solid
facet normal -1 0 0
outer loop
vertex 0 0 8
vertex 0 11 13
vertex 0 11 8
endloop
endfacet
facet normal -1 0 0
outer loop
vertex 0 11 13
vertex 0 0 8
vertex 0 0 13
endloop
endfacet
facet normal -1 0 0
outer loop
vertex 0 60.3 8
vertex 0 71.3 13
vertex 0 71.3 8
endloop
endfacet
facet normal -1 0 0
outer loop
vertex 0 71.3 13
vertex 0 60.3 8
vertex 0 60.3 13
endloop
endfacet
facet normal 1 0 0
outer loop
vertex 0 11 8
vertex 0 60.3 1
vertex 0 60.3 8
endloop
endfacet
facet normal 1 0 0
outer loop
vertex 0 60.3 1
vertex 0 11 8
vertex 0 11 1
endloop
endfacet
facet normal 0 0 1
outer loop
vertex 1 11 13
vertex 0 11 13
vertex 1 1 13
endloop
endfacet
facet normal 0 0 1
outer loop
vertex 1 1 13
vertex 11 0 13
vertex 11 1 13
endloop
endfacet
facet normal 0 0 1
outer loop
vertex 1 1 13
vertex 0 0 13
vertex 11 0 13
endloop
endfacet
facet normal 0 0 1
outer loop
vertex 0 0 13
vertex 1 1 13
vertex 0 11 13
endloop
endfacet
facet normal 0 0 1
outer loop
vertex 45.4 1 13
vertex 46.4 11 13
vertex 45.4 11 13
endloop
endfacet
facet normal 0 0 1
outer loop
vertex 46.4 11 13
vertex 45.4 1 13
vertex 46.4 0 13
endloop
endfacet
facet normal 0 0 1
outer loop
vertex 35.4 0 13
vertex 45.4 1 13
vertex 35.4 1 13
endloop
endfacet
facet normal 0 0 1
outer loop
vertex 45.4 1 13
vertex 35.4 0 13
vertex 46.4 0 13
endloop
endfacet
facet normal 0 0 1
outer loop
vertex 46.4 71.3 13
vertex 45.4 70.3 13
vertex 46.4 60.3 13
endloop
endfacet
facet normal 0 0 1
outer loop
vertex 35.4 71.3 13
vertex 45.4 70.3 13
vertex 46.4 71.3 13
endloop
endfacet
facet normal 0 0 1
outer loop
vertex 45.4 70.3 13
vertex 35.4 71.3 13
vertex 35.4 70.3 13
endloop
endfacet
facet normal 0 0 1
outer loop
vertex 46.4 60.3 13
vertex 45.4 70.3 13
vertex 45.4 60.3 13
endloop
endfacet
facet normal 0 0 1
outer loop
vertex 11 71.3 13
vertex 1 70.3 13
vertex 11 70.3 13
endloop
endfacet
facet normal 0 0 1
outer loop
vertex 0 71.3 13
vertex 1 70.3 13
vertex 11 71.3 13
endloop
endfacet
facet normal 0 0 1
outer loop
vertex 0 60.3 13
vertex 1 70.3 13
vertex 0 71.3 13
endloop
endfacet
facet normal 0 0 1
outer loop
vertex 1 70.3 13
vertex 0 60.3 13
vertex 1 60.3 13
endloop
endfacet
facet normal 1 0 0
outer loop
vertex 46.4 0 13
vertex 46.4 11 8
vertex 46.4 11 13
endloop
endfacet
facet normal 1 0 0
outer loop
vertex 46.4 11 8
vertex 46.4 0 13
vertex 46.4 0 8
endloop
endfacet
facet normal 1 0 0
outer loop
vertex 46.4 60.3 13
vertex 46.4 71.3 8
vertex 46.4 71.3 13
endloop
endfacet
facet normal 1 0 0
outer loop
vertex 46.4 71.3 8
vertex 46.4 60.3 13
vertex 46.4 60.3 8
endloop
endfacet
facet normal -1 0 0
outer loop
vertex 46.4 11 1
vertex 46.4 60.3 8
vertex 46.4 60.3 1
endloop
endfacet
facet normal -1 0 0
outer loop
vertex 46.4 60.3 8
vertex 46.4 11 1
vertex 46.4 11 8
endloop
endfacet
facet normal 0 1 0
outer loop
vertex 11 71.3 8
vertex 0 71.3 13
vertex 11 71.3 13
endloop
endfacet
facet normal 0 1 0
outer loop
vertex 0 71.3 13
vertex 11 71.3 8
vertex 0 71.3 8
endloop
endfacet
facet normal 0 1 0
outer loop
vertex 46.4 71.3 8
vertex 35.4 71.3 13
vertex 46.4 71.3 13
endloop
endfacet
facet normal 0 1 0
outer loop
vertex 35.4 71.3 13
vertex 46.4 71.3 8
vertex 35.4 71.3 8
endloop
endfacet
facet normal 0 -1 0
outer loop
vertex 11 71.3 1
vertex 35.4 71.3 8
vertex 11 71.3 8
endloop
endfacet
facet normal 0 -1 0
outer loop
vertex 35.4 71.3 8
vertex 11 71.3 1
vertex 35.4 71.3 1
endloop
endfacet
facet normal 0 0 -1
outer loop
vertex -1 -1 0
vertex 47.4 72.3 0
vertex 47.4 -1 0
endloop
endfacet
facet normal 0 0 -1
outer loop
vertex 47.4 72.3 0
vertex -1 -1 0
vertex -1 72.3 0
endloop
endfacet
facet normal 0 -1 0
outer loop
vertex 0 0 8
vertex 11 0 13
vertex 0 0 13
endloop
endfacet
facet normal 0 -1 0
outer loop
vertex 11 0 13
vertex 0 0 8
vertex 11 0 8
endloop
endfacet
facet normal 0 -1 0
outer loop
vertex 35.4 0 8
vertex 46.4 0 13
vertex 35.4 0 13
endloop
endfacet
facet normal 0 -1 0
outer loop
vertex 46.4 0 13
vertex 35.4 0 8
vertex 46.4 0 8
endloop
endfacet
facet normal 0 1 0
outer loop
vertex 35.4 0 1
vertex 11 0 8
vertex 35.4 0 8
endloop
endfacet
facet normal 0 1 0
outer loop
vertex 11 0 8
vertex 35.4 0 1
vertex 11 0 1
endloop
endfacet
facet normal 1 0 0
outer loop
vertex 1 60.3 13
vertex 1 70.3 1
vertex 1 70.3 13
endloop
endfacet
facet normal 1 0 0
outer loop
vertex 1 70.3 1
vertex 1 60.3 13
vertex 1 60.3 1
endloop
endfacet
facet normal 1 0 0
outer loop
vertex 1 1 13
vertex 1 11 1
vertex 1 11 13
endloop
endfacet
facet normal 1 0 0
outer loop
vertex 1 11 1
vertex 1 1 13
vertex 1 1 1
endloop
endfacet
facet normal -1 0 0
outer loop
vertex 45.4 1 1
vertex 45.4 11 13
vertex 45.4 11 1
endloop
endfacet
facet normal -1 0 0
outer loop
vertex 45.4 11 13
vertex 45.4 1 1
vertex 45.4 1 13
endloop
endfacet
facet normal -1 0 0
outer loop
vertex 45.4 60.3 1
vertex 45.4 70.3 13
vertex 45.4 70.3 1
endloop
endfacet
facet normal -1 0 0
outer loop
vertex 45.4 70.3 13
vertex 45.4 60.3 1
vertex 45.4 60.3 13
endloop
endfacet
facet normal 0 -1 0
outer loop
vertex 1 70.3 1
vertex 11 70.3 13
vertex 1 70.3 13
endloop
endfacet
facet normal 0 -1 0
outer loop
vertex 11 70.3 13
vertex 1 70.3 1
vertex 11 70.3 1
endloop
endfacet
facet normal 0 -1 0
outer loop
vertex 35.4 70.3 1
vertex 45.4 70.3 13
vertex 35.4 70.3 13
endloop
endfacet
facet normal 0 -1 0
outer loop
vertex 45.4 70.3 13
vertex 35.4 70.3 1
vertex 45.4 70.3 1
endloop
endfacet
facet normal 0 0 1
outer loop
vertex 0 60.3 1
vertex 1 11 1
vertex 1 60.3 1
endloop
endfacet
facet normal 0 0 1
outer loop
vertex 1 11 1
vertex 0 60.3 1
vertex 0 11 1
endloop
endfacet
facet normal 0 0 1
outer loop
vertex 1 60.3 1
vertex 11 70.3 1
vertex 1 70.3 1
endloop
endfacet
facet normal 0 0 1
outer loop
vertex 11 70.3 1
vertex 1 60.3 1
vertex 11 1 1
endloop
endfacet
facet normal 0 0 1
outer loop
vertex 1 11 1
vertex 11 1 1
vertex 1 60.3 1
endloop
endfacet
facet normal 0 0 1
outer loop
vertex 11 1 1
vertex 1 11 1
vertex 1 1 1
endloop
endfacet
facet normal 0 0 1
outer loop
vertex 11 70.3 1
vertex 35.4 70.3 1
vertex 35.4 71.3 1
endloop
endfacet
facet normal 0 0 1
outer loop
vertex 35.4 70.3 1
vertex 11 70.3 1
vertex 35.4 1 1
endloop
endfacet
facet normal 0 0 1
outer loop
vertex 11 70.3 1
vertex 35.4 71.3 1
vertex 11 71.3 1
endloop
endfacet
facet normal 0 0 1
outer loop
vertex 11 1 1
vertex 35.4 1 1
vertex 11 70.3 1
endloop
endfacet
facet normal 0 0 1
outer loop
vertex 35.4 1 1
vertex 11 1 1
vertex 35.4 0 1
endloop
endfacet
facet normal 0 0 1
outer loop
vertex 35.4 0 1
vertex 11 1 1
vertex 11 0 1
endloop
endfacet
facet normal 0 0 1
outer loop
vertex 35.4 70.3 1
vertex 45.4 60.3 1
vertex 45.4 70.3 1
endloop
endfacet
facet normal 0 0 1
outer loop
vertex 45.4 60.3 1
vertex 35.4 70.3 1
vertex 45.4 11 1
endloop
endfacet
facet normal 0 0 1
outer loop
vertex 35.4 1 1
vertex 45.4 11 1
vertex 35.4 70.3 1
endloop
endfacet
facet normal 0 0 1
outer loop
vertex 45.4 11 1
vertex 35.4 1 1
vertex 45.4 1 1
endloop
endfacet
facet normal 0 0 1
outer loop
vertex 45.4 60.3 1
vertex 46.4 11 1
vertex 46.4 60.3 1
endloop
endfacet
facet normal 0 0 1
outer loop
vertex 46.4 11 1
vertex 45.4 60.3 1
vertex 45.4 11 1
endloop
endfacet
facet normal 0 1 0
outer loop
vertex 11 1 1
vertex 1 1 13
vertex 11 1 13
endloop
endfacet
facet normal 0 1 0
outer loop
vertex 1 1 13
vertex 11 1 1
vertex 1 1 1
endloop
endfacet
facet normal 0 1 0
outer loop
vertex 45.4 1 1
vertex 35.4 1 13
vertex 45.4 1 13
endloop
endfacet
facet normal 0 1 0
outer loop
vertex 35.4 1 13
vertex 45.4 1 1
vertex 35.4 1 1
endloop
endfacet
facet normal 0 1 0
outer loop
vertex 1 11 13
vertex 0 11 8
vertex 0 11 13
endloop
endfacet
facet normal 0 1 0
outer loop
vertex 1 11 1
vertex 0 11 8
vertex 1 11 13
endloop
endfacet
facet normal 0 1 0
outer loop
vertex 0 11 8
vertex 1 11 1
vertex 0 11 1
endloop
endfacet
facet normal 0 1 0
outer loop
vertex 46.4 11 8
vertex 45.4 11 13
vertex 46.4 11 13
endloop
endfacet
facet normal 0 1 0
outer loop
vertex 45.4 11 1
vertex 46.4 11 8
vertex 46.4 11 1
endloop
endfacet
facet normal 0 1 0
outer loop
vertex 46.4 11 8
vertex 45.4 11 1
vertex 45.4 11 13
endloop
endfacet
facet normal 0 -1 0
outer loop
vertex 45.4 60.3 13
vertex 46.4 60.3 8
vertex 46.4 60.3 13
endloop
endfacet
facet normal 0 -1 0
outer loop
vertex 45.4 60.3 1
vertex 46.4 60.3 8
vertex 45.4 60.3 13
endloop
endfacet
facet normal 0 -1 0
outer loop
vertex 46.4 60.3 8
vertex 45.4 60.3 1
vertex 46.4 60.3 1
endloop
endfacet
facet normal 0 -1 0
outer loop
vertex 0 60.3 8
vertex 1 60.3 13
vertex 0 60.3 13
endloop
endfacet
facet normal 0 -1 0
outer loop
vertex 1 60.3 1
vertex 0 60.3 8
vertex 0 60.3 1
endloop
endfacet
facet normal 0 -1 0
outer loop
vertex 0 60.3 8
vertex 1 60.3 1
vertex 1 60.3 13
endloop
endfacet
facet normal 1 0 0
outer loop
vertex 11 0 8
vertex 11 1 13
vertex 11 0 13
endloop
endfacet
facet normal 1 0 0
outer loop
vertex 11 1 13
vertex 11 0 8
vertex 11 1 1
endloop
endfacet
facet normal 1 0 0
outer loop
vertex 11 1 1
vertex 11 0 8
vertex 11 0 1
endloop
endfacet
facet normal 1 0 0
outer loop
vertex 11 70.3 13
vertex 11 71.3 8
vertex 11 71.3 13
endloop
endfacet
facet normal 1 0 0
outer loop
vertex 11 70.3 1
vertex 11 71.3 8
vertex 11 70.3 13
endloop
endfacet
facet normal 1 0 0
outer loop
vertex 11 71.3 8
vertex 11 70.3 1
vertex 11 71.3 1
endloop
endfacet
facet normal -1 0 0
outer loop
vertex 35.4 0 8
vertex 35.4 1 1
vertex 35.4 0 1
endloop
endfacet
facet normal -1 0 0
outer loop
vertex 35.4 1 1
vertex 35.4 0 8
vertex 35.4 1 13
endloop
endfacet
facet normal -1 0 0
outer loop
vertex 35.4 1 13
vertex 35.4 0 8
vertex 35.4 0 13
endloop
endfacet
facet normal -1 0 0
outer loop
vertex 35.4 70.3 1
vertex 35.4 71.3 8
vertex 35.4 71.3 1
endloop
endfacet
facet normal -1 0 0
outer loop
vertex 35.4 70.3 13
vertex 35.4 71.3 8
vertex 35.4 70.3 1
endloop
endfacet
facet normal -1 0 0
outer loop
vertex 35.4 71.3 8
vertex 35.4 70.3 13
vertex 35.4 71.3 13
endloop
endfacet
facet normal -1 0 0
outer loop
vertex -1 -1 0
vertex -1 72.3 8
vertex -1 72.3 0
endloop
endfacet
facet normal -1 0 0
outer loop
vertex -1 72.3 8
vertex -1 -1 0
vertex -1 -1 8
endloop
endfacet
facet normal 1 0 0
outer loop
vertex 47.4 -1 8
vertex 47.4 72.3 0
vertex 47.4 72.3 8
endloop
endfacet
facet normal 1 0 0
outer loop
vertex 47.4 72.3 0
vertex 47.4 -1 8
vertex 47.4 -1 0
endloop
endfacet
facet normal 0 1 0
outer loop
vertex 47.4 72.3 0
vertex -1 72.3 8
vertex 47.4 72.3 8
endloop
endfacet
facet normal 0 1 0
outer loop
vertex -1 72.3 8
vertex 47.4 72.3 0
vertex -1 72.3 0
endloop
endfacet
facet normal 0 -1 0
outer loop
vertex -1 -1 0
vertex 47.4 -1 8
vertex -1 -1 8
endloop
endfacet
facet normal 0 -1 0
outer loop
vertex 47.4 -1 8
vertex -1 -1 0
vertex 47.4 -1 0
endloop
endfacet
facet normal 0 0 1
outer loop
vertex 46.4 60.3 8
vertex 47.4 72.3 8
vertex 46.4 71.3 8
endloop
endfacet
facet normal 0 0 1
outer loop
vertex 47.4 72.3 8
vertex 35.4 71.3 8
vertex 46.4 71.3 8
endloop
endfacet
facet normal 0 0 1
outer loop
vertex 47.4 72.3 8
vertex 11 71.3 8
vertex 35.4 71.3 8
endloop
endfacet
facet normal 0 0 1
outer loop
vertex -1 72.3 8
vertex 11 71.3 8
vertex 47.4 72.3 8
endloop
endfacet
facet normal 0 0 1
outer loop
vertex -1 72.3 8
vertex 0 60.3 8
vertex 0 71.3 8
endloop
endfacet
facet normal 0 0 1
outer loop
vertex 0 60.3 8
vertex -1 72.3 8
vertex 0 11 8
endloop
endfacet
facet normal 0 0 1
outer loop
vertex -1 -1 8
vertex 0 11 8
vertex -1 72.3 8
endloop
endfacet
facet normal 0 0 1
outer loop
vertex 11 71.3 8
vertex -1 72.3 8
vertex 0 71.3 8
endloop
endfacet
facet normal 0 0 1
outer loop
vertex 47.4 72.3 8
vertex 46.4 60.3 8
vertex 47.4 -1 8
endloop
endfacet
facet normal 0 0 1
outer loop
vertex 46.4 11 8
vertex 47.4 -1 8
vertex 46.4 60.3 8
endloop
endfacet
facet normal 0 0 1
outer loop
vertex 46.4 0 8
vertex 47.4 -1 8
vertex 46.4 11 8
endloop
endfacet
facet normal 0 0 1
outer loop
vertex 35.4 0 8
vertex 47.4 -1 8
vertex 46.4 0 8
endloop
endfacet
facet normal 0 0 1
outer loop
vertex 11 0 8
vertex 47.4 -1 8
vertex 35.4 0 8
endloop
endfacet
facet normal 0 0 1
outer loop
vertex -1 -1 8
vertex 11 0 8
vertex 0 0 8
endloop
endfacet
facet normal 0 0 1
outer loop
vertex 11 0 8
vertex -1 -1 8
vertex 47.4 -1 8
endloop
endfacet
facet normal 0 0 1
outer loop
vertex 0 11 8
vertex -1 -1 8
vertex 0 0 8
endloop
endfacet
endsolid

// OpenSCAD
// file: standard5mm.scad
/**
 * The good old standard 5mm LEDs.
 *
 * @filename: standard5mm.scad
 * @uri: https://github.com/htho/fzz2scad-lib/lib/electronic_components/active/semiconductors/diodes/leds/standard5mm.scad
 * @tag-list: led, 5mm
 * @category-list: electronic_component, active, semiconductor, led
 *
 * @author: Hauke Thorenz <htho@thorenz.net>
 * @version: 0.1
 * @license-short: cc-by-sa-4.0
 * @license: This work is licensed under the Creative Commons
 * Attribution-ShareAlike 4.0 International License.
 * To view a copy of this license, visit
 * http://creativecommons.org/licenses/by-sa/4.0/.
 * @license-link: http://creativecommons.org/licenses/by-sa/4.0/
 */

/**
 * A 5mm LED. High Quality Version.
 *
 * @uri: https://github.com/htho/fzz2scad-lib/lib/electronic_components/active/semiconductors/diodes/leds/standard5mm.scad
 * @note: fzz2scad-compatible, see https://github.com/htho/fzz2scad
 * @tag-list: ed, 5mm, hq, fzz2scad-compatible
 * @category-list: electronic_component, active, semiconductor, led
 *
 * @author: Hauke Thorenz <htho@thorenz.net>
 * @version: 0.1
 * @license-short: cc-by-sa-4.0
 * @license: This work is licensed under the Creative Commons
 * Attribution-ShareAlike 4.0 International License.
 * To view a copy of this license, visit
 * http://creativecommons.org/licenses/by-sa/4.0/.
 * @license-link: http://creativecommons.org/licenses/by-sa/4.0/
 *
 * @datasheet: https://cdn-reichelt.de/documents/datenblatt/A500/LED_5MM_GE.pdf
 * @fritzing: https://github.com/fritzing/fritzing-parts/blob/master/svg/core/pcb/5mm_LED.svg
 *
 * @variable-dependency: commonLegDiameter
 * @variable-dependency: commonLegLength
 *
 * @param: distanceFromPCB Sometimes the LED does not touch the pcb.
 */
module led5mm_hq(distanceFromPCB=0)
{
  rm = 2.54;

  dSocket=5.8;
  hSocket=1.0;

  dMain=5.0;
  hMain=7.7;

  hCathode=commonLegLength-commonLegLength/2;
  hAnode=commonLegLength;

  dCathodeAnode = commonLegDiameter;
  translate([0,0,distanceFromPCB]) //moving according to distanceFromPCB
  rotate([0,0,90]){ //rotating it so the flat edge is on the "upper" side (2D) which is the "back" side in 3D
  translate([-(rm/2),0,0]){ //Translating so the center is on connector0
    union(){
      difference(){
        cylinder(hSocket, d=dSocket); //Socket
          translate([dSocket/2,0,hSocket/2]) cube([(dSocket-dMain), dSocket, hSocket+1], true);
        }

        translate([0,0,hSocket]) cylinder(hMain-(dMain/2), d=dMain); //main
        translate([0,0,hSocket]) translate([0,0,hMain-(dMain/2)]) sphere(d=dMain);

        translate([-(rm/2),0,-hAnode/2]) cube([dCathodeAnode,dCathodeAnode,hAnode], true); //anode
        translate([+(rm/2),0,-hCathode/2]) cube([dCathodeAnode,dCathodeAnode,hCathode], true); //cathode
      }
    }
  }
}

/**
 * A 5mm LED. Drill Only Version.
 *
 * @uri: https://github.com/htho/fzz2scad-lib/lib/electronic_components/active/semiconductors/diodes/leds/standard5mm.scad
 * @note: fzz2scad-compatible, see https://github.com/htho/fzz2scad
 * @tag-list: led, 5mm, do, fzz2scad-compatible
 * @category-list: electronic_component, active, semiconductor, led
 *
 * @author: Hauke Thorenz <htho@thorenz.net>
 * @version: 0.1
 * @license-short: cc-by-sa-4.0
 * @license: This work is licensed under the Creative Commons
 * Attribution-ShareAlike 4.0 International License.
 * To view a copy of this license, visit
 * http://creativecommons.org/licenses/by-sa/4.0/.
 * @license-link: http://creativecommons.org/licenses/by-sa/4.0/
 *
 * @source: https://cdn-reichelt.de/documents/datenblatt/A500/LED_5MM_GE.pdf
 * @source: https://github.com/fritzing/fritzing-parts/blob/master/svg/core/pcb/5mm_LED.svg
 *
 * @param: drillDepth The depth of the drill for this part.
 * @param: distanceFromPCB Sometimes the LED does not touch the pcb.
 */
module led5mm_do(drillDepth, distanceFromPCB=0)
{
  rm = 2.54;
  dCyl = 5;

  translate([0,0,distanceFromPCB]) //moving according to distanceFromPCB
  rotate([0,0,90]){ //rotating it so the flat edge is on the "upper" side (2D) which is the "back" side in 3D
    translate([-(rm/2),0,0]){ //Translating so the center is on connector0
      cylinder(h=drillDepth, d=dCyl); //create the object.
    }
  }
}

/**
 * A 5mm LED. Low Quality Version.
 *
 * @uri: https://github.com/htho/fzz2scad-lib/lib/electronic_components/active/semiconductors/diodes/leds/standard5mm.scad
 * @note: fzz2scad-compatible, see https://github.com/htho/fzz2scad
 * @tag-list: ed, 5mm, lq, fzz2scad-compatible
 * @category-list: electronic_component, active, semiconductor, led
 *
 * @author: Hauke Thorenz <htho@thorenz.net>
 * @version: 0.1
 *
 * @license-short: cc-by-sa-4.0
 * @license: This work is licensed under the Creative Commons
 * Attribution-ShareAlike 4.0 International License.
 * To view a copy of this license, visit
 * http://creativecommons.org/licenses/by-sa/4.0/.
 * @license-link: http://creativecommons.org/licenses/by-sa/4.0/
 *
 * @source: https://cdn-reichelt.de/documents/datenblatt/A500/LED_5MM_GE.pdf
 * @source: https://github.com/fritzing/fritzing-parts/blob/master/svg/core/pcb/5mm_LED.svg
 *
 * @param: distanceFromPCB Sometimes the LED does not touch the pcb.
 */
module led5mm_lq(distanceFromPCB=0)
{
  rm = 2.54;
  dCyl = 5;
  hCyl = 8.7;

  translate([0,0,distanceFromPCB]) //moving according to distanceFromPCB
  rotate([0,0,90]){ //rotating it so the flat edge is on the "upper" side (2D) which is the "back" side in 3D
    translate([-(rm/2),0,0]){ //Translating so the center is on connector0
      cylinder(h=hCyl, d=dCyl); //create the object.
    }
  }
}
// file: parts.scad
$fn=100;

//x,y,z -> l,w,h

pn532_l=42.4;
pn532_w=40.3;
pn532_h=7;
module pn532()
{
  color("red") {
      difference()
      {
          cube([pn532_l,pn532_w,pn532_h]);
  //        cyclinder(h=h, d=3);
      }
  }
}

//note: bottom is 20.2 and 34.2
hlkpm01_w=20;
hlkpm01_l=34;
hlkpm01_h=15.2;

module hlkpm01()
{
  color("black")
  {
    l=hlkpm01_l;
    w=hlkpm01_w;
    h=hlkpm01_h;
    cube([l,w,h]);

    translate([l/2-29.4/2, w/2-5/2, 0])  cylinder(d=0.8,h=h+5);
    translate([l/2-29.4/2, w/2+5/2, 0])  cylinder(d=0.8,h=h+5);
    translate([l/2+29.4/2, w/2-15.4/2, 0])  cylinder(d=0.8,h=h+5);
    translate([l/2+29.4/2, w/2+15.4/2, 0])  cylinder(d=0.8,h=h+5);

  }
}



breadboard170_l=46.4;
breadboard170_w=34.5;
breadboard170_h=9.7;
module breadboard170()
{
    color ("white")
    {
        l=breadboard170_l;
        w=breadboard170_w;
        h=breadboard170_h;
        difference(){
            union()
            {
                //main
                cube([l,w,h]);
                //notch
                margin=0.1;
                bl=4.45+margin;
                bh=5.3+margin;
                bw=1.7+margin;
                translate([l/2-bl/2, -bw, 1]) cube([bl,bw,bh]);
                translate([-bw, w/2-bl/2, 1]) cube([bw,bl,bh]);
            }
            translate([4.8,w/2,0]) cylinder(d=3.5,h=h);
            translate([l-4.8,w/2,0]) cylinder(d=3.5,h=h);
        }
    }
}


wemosd1mini_w=25.5;
wemosd1mini_l=34.6;
wemosd1mini_h=6.5;

module wemosd1mini()
{
  color("blue")
  {
    wemosd1mini_w=25.5;
    wemosd1mini_l=34.6;
    wemosd1mini_h=6.5;
    cube([wemosd1mini_l,wemosd1mini_w,wemosd1mini_h]);
  }
}



//crate , specifiy inner dimensions
module crate(w,l,h,wall)
{
    difference()
    {
        cube([w+wall*2,  l+wall*2,  h+wall]);
        translate([wall,wall,wall]) cube([w, l, h+wall]);
    }
}

//a crate with only the corners
// specifiy inner dimensions, and how much to close it from the bottom and corners
module open_crate(w,l,h,wall,corner, bottom)
{
    difference()
    {
        crate(w,l,h,wall);
        
        translate([0, wall+corner, wall+bottom]) cube([w+wall*2,  l-corner*2,  h]);
        //same as above, but for x
        translate([wall+corner, 0, wall+bottom]) cube([w-corner*2,l+wall*2,  h]);        
    }
}

//a cover that fits inside a crate (a crate that has w,l,h as inner dimensions)
//basically a open_crate with a rimm that sticks out by crate_wall mm
module cover(w,l,h,wall,corner, bottom,crate_wall)
{
        
        open_crate(w-wall*2,l-wall*2,h, wall, corner, bottom);

        //the rimm
        translate([-crate_wall, -crate_wall,0]) cube([w+crate_wall*2, l+crate_wall*2, wall]);
}




module trapezoid(base,top,height, depth)
{

    polyhedron(
        points=[
            //front
            [0,0,0],
            [base,0,0],
            [(base/2)+(top/2),height,0],
            [(base/2)-(top/2),height,0],

            //rear
            [0,0,depth],
            [base,0,depth],
            [(base/2)+(top/2),height,depth],
            [(base/2)-(top/2),height,depth],
        ],

        faces=[
            [0,1,2,3], //front
            [7,6,5,4], //rear
            [0,4,5,1], //bottom
            [2,6,7,3], //top
            [0,3,7,4], //left
            [5,6,2,1], //right

        ]

    );
}


module test(s,h)
{
    for (a =[0,90,180,270])
    {
        rotate([0,0,a+45])
        {
            translate([-s/2,-s/2,0])
            {
                cube([s*3,s,h]);
                translate([s*2,-s*2,0])cube([s,s*2,h]);
            }
        }
    }
}


module test2(h,wall)
{
    r=1.3 * h;
    b=0.4 * h;
    
    center= sqrt(pow(r,2)-pow((h/2),2))+b/2;
    
    difference()
    {
        translate([-h/2,-b/2,0])cube([h,b,wall]);
        translate([0,center,0]) color("red") cylinder(d=r*2, wall);
        translate([0,-center,0]) color("red") cylinder(d=r*2, wall);
    }


    difference()
    {
        translate([-b/2,-h/2,0])cube([b,h,wall]);
        translate([center,0,0]) color("red") cylinder(d=r*2, wall);
        translate([-center,0,0]) color("red") cylinder(d=r*2, wall);
    }
}
// main file
include <parts.scad>

commonLegLength=0;
commonLegDiameter=0;
include <standard5mm.scad>



wall=1;
window=19;
boxh=40;
woodboxw=30;


//cover
cover(breadboard170_l,pn532_w+wall+woodboxw, 12,wall,10, 0, wall);

//we need extra room :(
translate([-wall,-wall,0]) crate(breadboard170_l,pn532_w+wall+woodboxw, 7,wall);
